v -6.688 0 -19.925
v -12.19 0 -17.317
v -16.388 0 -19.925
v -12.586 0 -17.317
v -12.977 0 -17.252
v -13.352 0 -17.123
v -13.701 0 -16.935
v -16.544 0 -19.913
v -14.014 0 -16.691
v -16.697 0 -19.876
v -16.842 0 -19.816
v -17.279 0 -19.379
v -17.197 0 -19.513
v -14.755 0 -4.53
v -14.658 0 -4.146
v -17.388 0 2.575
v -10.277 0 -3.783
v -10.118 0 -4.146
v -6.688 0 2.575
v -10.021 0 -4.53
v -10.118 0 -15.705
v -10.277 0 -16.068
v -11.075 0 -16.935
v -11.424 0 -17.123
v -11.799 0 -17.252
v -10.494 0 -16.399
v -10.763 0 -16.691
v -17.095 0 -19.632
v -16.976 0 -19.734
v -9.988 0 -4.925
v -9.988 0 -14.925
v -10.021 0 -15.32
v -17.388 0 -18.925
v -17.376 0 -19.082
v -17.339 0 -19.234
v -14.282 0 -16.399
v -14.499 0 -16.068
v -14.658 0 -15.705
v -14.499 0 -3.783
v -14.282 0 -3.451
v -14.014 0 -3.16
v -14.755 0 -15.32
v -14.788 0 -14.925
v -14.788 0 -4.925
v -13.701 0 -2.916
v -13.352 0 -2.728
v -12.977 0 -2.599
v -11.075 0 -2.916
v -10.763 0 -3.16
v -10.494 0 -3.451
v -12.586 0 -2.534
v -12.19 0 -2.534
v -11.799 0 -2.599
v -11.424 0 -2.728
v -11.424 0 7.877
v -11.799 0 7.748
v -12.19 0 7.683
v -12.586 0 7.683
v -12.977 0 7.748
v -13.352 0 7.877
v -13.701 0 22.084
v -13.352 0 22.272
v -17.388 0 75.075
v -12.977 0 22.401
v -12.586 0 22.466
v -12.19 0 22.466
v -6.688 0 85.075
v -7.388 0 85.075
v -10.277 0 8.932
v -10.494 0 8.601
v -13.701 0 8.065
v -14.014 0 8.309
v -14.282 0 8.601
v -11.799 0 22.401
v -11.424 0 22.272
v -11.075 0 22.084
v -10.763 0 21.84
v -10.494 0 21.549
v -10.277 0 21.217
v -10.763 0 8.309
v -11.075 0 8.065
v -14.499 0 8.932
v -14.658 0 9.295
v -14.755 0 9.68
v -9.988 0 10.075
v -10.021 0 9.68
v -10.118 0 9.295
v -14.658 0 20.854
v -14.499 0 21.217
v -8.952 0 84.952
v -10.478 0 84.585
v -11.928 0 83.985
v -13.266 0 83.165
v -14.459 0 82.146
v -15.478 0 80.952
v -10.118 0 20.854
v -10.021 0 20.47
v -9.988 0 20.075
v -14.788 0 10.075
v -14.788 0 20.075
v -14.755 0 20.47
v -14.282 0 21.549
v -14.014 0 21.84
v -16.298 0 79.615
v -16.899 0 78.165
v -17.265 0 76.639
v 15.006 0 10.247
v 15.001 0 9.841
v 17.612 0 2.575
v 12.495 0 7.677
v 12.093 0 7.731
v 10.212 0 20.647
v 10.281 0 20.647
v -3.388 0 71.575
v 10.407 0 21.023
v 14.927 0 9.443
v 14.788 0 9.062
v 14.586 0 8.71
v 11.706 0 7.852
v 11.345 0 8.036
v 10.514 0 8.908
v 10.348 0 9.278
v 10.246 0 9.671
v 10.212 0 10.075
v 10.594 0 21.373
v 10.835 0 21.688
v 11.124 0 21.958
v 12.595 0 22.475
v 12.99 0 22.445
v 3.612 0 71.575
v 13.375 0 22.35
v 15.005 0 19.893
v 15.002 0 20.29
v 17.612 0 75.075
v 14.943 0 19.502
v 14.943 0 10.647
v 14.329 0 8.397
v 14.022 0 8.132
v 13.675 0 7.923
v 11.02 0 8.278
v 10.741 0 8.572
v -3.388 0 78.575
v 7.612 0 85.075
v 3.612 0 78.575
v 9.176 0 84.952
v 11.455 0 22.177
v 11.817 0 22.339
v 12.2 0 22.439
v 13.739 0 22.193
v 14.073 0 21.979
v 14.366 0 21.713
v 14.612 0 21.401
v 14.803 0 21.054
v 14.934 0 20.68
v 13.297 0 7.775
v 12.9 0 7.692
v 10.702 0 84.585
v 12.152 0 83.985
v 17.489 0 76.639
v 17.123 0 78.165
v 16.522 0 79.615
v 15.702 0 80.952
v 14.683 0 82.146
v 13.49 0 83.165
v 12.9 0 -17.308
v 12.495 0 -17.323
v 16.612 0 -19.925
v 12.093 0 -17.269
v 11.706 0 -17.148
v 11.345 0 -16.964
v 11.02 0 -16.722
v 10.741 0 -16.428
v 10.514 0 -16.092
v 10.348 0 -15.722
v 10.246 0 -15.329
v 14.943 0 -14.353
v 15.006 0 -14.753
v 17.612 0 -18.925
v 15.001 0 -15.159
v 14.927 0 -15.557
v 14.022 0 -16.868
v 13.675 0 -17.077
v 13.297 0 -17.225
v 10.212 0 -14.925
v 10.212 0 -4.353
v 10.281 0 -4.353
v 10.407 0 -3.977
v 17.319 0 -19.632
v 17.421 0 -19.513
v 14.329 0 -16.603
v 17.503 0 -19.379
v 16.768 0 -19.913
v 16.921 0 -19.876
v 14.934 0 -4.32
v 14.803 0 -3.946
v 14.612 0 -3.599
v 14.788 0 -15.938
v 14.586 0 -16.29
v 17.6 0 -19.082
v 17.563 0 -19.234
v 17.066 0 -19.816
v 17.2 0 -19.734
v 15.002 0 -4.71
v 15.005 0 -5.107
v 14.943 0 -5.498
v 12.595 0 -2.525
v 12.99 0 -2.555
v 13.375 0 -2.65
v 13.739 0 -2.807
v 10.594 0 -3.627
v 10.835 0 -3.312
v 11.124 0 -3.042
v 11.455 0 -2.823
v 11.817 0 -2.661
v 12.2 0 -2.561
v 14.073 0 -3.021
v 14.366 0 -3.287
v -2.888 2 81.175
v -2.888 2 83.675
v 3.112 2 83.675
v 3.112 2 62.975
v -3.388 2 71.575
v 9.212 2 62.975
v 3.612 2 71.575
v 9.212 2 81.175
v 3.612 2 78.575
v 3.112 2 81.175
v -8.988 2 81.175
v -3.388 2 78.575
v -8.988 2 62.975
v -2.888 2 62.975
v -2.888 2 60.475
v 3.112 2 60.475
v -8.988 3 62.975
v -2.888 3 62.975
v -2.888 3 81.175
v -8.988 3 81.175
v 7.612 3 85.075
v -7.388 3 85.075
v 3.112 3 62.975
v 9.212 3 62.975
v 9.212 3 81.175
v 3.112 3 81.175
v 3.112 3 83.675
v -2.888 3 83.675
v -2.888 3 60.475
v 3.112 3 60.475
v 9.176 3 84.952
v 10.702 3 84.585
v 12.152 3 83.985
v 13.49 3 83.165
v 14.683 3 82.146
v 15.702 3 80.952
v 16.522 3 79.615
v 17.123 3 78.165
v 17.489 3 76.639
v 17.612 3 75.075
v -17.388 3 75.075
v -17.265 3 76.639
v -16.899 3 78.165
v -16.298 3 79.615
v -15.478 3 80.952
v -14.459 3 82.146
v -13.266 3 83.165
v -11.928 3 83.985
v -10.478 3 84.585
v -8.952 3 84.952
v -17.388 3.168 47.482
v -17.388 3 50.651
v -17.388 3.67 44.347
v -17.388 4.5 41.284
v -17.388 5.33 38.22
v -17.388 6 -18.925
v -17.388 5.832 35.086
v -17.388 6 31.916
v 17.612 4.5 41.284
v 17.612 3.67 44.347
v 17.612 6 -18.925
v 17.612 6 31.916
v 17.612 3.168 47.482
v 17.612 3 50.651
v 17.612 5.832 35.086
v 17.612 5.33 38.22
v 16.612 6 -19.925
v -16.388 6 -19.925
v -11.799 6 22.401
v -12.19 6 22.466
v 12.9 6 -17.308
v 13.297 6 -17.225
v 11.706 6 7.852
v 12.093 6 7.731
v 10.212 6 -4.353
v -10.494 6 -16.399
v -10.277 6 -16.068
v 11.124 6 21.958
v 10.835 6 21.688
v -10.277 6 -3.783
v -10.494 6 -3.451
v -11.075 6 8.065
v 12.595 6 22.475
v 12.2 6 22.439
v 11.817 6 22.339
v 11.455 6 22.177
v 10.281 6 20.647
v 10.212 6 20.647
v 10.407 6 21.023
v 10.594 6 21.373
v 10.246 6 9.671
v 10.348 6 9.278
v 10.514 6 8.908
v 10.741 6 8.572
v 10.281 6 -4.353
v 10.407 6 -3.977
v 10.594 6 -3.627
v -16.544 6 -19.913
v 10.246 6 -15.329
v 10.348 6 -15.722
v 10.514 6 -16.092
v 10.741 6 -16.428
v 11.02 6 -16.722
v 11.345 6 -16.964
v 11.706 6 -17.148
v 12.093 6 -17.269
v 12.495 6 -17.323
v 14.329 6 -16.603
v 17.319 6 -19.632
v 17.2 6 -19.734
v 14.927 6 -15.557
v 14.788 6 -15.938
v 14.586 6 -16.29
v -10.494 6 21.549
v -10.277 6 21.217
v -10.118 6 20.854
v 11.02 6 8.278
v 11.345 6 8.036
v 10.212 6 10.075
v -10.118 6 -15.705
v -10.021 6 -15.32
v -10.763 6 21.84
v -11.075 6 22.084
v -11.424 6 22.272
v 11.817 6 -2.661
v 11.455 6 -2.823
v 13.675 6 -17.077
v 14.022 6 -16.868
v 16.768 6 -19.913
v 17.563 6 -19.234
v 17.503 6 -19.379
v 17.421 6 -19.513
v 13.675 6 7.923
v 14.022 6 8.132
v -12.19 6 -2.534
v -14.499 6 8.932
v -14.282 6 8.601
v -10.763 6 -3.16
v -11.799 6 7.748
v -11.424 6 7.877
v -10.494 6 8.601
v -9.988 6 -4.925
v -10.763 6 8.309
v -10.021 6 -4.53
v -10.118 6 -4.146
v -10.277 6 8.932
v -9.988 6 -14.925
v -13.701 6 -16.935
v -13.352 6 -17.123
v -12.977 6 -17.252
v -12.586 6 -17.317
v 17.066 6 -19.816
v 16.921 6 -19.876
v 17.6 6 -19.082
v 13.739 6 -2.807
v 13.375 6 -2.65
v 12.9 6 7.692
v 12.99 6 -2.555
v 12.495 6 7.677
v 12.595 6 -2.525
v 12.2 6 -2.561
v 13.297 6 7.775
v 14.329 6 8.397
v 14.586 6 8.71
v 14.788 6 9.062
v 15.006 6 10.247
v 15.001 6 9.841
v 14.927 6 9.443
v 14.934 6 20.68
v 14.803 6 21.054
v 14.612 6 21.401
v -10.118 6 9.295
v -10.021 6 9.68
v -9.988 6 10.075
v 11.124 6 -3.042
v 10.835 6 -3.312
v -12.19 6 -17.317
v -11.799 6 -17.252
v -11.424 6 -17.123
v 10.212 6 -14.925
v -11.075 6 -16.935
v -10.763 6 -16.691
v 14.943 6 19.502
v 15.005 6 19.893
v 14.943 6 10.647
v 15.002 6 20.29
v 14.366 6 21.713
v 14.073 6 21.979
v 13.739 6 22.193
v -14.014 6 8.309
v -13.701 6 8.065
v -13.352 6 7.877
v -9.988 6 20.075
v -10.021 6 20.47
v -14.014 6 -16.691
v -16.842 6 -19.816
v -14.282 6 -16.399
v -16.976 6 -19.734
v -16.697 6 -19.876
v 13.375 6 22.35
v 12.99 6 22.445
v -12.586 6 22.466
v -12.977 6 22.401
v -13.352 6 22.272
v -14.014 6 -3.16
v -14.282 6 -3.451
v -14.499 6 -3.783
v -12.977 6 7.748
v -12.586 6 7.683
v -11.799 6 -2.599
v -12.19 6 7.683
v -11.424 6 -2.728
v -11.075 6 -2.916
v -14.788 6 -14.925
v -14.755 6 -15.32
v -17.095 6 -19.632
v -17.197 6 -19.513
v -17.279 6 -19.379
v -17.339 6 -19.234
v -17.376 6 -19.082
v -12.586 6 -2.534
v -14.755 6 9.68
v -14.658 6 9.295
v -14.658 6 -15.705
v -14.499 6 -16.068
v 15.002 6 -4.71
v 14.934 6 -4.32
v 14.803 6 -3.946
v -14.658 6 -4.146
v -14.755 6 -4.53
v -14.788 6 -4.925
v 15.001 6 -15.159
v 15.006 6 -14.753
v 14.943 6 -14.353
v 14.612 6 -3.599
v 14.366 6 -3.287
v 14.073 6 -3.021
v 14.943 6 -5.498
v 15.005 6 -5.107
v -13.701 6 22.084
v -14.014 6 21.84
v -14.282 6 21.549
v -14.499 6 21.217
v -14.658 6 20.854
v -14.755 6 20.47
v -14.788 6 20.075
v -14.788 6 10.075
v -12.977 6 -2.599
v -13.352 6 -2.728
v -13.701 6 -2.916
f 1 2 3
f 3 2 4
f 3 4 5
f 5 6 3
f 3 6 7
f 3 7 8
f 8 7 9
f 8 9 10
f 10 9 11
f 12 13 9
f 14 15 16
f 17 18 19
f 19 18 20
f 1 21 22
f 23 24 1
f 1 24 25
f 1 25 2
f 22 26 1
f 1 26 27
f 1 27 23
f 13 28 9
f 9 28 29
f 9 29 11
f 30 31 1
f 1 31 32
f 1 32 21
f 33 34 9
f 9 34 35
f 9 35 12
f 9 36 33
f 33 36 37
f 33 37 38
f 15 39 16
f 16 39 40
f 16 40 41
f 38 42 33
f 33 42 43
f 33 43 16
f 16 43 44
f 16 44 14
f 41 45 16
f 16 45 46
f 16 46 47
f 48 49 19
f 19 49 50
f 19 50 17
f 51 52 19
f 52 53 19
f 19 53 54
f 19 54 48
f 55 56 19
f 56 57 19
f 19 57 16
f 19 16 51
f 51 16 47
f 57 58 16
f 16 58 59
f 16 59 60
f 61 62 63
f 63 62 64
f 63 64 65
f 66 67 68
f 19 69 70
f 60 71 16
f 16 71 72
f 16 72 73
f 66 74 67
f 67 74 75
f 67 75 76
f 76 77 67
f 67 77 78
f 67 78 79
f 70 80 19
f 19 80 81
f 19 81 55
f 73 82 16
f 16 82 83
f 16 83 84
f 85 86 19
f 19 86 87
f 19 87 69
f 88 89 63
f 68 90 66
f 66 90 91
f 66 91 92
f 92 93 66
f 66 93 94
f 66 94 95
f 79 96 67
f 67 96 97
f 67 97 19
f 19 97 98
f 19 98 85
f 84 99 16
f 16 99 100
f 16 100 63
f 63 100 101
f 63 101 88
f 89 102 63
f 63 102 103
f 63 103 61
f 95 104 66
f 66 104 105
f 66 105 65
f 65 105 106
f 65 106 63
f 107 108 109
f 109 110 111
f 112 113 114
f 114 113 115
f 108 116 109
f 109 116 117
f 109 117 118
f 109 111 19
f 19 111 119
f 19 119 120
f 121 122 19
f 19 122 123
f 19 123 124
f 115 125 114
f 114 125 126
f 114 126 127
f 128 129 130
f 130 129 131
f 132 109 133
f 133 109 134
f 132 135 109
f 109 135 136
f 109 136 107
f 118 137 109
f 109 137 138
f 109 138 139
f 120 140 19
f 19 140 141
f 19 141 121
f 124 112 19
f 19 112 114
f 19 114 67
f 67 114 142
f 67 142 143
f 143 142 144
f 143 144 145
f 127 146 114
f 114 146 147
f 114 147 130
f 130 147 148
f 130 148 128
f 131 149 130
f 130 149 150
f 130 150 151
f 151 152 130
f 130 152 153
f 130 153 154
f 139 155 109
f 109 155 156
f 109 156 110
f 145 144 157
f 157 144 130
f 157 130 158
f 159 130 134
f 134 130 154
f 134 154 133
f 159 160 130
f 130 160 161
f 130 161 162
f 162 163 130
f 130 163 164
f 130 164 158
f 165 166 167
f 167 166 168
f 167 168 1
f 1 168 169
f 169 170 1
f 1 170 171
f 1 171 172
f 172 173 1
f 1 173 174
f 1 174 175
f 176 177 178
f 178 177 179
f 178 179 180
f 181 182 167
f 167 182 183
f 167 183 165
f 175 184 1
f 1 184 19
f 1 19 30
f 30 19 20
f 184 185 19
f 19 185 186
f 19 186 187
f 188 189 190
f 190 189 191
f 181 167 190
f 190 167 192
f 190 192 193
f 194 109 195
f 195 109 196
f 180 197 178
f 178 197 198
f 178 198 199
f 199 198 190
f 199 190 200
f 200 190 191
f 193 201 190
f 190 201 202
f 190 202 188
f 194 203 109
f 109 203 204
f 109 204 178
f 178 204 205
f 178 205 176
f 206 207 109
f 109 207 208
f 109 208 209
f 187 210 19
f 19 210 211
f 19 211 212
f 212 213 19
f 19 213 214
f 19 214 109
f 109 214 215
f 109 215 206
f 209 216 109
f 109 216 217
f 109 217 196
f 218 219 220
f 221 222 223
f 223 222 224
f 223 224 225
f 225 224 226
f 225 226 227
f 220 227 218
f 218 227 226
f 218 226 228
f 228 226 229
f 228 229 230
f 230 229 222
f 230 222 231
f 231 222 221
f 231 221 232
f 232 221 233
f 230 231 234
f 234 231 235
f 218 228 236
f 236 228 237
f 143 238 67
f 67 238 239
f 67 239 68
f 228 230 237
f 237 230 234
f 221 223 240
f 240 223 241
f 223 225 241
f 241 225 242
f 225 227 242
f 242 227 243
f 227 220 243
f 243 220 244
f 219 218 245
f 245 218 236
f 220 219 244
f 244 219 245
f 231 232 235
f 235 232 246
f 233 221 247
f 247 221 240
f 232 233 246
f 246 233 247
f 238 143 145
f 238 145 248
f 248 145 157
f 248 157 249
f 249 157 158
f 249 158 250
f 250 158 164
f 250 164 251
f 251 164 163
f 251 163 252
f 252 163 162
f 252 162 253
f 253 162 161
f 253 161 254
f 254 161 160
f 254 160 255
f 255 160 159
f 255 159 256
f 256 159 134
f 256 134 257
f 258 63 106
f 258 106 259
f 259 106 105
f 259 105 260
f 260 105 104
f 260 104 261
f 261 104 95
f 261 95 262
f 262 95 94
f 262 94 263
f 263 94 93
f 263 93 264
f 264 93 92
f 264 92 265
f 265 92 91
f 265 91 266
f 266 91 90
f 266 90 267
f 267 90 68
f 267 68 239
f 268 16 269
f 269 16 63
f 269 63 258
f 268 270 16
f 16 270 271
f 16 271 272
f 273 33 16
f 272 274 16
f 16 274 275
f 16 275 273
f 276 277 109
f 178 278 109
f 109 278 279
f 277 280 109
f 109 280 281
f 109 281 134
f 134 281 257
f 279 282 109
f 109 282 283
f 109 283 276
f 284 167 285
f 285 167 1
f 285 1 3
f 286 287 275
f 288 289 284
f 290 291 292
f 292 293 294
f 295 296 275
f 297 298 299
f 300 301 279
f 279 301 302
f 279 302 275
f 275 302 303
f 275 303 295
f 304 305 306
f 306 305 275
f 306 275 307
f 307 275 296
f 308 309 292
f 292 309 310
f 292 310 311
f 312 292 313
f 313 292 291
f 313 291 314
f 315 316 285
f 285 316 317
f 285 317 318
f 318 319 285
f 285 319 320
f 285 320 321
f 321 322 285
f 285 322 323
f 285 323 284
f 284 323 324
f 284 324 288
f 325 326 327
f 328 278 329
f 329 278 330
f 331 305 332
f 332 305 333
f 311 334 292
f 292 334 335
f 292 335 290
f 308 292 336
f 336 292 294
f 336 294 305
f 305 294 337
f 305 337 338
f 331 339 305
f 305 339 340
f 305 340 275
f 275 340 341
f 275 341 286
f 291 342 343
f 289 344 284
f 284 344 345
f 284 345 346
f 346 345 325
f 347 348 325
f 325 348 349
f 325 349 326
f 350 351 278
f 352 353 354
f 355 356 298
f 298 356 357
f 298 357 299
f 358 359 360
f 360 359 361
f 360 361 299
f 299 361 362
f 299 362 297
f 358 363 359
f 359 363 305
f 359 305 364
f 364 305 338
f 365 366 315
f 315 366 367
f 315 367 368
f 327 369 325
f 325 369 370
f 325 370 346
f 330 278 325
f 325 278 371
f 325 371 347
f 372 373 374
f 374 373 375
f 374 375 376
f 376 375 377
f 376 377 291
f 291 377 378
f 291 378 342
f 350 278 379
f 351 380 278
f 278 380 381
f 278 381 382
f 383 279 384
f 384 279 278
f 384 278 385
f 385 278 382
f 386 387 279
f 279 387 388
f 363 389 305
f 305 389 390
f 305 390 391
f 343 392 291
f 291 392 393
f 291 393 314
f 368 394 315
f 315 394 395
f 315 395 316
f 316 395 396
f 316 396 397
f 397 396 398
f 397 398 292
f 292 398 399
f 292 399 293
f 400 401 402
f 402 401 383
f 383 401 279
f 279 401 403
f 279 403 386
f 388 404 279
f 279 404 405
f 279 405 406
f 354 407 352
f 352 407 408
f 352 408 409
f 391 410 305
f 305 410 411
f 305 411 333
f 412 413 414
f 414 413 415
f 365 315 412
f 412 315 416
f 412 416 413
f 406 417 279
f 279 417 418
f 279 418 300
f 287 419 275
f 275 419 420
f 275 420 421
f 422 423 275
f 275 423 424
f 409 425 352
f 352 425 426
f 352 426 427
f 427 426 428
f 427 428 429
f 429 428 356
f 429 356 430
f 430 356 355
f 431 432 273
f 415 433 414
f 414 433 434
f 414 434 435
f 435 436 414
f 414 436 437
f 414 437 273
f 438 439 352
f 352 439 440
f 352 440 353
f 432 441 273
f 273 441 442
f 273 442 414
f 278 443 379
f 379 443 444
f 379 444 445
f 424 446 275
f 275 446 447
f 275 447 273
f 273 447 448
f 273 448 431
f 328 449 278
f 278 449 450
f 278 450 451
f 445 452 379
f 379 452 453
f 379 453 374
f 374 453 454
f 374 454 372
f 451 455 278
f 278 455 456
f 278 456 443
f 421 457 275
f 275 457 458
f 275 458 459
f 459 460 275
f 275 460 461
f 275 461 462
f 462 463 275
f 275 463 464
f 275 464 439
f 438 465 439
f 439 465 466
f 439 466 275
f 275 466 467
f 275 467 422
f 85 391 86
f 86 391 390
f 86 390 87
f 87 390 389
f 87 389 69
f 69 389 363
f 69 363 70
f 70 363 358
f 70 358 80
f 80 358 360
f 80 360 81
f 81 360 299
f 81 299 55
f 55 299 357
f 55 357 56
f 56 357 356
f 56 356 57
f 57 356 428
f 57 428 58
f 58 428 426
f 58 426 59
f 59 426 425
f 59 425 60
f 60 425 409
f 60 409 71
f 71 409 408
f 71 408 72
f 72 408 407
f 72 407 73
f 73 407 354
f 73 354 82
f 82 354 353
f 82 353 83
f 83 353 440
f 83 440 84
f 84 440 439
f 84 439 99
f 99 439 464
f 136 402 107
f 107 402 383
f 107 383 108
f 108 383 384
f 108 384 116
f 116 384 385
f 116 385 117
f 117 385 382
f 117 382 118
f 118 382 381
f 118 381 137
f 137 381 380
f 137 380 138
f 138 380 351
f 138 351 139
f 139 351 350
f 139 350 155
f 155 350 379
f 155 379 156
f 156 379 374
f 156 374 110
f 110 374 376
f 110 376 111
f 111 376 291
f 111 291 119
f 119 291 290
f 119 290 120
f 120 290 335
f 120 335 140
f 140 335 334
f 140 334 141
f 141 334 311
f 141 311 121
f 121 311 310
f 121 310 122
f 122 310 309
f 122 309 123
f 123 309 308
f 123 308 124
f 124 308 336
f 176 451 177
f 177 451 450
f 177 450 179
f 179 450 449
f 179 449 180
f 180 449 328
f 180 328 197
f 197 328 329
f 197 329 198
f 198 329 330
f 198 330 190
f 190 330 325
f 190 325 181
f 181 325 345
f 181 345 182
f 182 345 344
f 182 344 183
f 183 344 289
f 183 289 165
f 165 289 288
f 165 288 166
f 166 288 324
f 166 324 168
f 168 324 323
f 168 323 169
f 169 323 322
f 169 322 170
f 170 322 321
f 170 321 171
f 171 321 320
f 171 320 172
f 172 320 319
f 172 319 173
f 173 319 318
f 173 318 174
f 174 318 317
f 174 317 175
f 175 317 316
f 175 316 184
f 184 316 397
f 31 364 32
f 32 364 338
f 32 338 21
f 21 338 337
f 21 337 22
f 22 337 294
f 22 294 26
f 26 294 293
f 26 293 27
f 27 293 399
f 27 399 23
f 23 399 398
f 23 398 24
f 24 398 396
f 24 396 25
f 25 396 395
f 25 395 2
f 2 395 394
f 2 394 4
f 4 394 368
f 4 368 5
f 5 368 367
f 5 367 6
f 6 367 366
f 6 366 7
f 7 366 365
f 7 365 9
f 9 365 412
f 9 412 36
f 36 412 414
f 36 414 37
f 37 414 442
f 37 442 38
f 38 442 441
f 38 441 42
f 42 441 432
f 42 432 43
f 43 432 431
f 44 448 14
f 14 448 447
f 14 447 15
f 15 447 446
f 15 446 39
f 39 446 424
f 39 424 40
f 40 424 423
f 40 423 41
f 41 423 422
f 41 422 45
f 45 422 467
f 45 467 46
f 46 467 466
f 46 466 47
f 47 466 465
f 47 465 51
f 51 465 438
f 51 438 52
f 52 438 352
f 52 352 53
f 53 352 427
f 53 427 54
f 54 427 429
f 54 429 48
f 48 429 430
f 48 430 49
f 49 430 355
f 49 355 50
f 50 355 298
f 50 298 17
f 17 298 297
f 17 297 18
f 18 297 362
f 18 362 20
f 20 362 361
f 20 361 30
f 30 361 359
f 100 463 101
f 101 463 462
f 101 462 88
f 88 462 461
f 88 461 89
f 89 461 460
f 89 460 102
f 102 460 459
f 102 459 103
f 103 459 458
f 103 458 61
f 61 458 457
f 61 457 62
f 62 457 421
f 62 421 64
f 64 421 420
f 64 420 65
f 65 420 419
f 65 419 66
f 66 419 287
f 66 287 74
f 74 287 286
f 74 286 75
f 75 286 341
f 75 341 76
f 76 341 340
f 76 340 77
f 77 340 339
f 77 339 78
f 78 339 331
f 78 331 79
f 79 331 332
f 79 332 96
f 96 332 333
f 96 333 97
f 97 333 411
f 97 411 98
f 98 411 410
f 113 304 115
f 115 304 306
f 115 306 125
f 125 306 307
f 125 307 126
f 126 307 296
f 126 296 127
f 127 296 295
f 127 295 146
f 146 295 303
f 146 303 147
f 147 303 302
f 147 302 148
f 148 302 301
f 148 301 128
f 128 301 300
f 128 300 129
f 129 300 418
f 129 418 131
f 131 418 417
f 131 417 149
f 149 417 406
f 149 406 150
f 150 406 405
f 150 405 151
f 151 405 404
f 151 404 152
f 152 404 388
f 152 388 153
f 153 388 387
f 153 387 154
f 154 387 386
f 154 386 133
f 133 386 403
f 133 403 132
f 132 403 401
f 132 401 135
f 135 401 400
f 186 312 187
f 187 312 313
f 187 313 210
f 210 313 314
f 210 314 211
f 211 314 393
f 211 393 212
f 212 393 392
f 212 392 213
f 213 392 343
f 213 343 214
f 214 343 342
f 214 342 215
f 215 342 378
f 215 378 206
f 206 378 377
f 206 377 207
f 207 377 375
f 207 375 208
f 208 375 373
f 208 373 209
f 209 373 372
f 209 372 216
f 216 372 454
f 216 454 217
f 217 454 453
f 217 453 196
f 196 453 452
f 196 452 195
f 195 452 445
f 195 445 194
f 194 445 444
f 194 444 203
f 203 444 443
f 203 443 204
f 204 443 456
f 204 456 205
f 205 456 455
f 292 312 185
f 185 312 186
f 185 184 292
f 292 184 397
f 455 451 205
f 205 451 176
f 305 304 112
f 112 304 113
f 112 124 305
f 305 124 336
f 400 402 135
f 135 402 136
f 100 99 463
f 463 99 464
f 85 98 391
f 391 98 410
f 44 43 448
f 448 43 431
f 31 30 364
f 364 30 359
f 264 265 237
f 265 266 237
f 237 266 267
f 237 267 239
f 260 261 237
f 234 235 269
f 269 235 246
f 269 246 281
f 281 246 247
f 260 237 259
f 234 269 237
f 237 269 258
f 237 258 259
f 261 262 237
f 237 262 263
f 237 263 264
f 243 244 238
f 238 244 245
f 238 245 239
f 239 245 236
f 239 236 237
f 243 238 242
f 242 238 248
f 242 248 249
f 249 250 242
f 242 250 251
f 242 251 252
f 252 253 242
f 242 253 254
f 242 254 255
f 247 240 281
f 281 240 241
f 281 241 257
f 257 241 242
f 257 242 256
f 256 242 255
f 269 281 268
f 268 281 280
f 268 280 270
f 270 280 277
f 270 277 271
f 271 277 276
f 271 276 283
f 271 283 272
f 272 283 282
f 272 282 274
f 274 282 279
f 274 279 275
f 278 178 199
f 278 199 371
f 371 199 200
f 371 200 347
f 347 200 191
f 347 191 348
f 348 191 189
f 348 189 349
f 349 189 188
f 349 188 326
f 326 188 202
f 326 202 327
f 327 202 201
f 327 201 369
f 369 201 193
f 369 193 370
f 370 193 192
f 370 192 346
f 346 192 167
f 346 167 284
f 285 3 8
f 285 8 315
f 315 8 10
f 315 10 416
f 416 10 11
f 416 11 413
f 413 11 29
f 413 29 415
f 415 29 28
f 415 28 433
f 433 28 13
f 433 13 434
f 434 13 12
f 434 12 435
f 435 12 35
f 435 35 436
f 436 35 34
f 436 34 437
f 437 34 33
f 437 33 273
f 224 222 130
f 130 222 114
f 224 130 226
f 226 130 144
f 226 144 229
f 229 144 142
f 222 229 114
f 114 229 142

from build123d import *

# Parameters (mm, degrees)
SKETCH1_W            = 35
SKETCH1_H            = 105
BOSS_EXTRUDE1_DEPTH  = 6
M4_CLEARANCE_HOLE1_D = 4.8
LPATTERN2_COUNT      = 2
LPATTERN2_PITCH      = 10
SKETCH5_W            = 4.8
SKETCH5_H            = 10
SKETCH5_W_2          = 4.730666207
SKETCH5_H_2          = 10.572708501
CUT_EXTRUDE1_DEPTH   = 88.085432636
SKETCH6_W            = 18.2
SKETCH6_H            = 18.2
CUT_EXTRUDE2_DEPTH   = 4
SKETCH7_W            = 7
SKETCH7_H            = 7
CUT_EXTRUDE3_DEPTH   = 87.970527062
SKETCH8_W            = 6
SKETCH8_H            = 23.2
CUT_EXTRUDE4_DEPTH   = 4
FILLET1_R            = 10
CUT_EXTRUDE5_START   = -6
SKETCH9_W            = 37.049954943
SKETCH9_H            = 47.5
CUT_EXTRUDE5_DEPTH   = 3
FILLET2_R            = 30
FILLET3_R            = 30
FILLET4_R            = 1
SKETCH14_W           = 7
SKETCH14_H           = 2
BOSS_EXTRUDE2_DEPTH  = 7
SKETCH16_W           = 7
SKETCH16_H           = 7
CUT_EXTRUDE6_DEPTH   = 10


with BuildPart() as part:
    # Sketch1 → Boss-Extrude1 (new body)
    with BuildSketch(Plane(origin=(0, 0, 0), x_dir=(1, 0, 0), z_dir=(0, 1, 0))):
        with Locations((0.111940299, -32.574626866)):
            Rectangle(SKETCH1_W, SKETCH1_H)
    extrude(amount=BOSS_EXTRUDE1_DEPTH)

    # M4 Clearance Hole1 (through all)
    with Locations(Plane(origin=(0, 6, 0), x_dir=(1, 0, 0), z_dir=(0, 1, 0))):
        with Locations((-12.388059701, 14.925373134), (12.611940299, 14.925373134), (12.611940299, -10.074626866), (-12.388059701, -10.074626866)):
            m4_clearance_hole1 = Hole(M4_CLEARANCE_HOLE1_D / 2)

    # LPattern2: M4 Clearance Hole1 ×2
    with Locations(*[(0, 0, i * LPATTERN2_PITCH) for i in range(1, LPATTERN2_COUNT)]):
        add(m4_clearance_hole1, mode=Mode.SUBTRACT)

    # Sketch5 → Cut-Extrude1 (cut, through all)
    with BuildSketch(Plane(origin=(0, 6, 0), x_dir=(1, 0, 0), z_dir=(0, 1, 0))):
        with Locations((-12.388059701, 9.925373134)):
            Rectangle(SKETCH5_W, SKETCH5_H)
        with Locations((-12.388059701, -15.074626866)):
            Rectangle(SKETCH5_W, SKETCH5_H)
        with Locations((12.577273403, 9.639018884)):
            Rectangle(SKETCH5_W_2, SKETCH5_H_2)
        with Locations((12.577273403, -15.360981116)):
            Rectangle(SKETCH5_W_2, SKETCH5_H_2)
    extrude(amount=-CUT_EXTRUDE1_DEPTH, mode=Mode.SUBTRACT)

    # Sketch6 → Cut-Extrude2 (cut)
    with BuildSketch(Plane(origin=(0, 6, 0), x_dir=(1, 0, 0), z_dir=(0, 1, 0))):
        with Locations((0.111940299, -72.074626866)):
            Rectangle(SKETCH6_W, SKETCH6_H)
    extrude(amount=-CUT_EXTRUDE2_DEPTH, mode=Mode.SUBTRACT)

    # Sketch7 → Cut-Extrude3 (cut, through all)
    with BuildSketch(Plane(origin=(0, 2, 0), x_dir=(1, 0, 0), z_dir=(0, 1, 0))):
        with Locations((0.111940299, -72.074626866)):
            Rectangle(SKETCH7_W, SKETCH7_H)
    extrude(amount=-CUT_EXTRUDE3_DEPTH, mode=Mode.SUBTRACT)

    # Sketch8 → Cut-Extrude4 (cut)
    with BuildSketch(Plane(origin=(0, 6, 0), x_dir=(1, 0, 0), z_dir=(0, 1, 0))):
        with Locations((0.111940299, -72.074626866)):
            Rectangle(SKETCH8_W, SKETCH8_H)
    extrude(amount=-CUT_EXTRUDE4_DEPTH, mode=Mode.SUBTRACT)

    # Fillet1
    fillet1_edges = [part.edges().sort_by_distance(p)[0] for p in [
        (17.611940299, 3, 85.074626866),
        (-17.388059701, 3, 85.074626866),
    ]]
    fillet(fillet1_edges, radius=FILLET1_R)

    # Sketch9 → Cut-Extrude5 (cut)
    with BuildSketch(Plane.XZ.offset(CUT_EXTRUDE5_START)):
        with Locations((1.136917771, 61.324626866)):
            Rectangle(SKETCH9_W, SKETCH9_H)
    extrude(amount=CUT_EXTRUDE5_DEPTH, mode=Mode.SUBTRACT)

    # Fillet2
    # the kernel refuses this fillet: 30 mm, written as the material it adds along each edge
    with BuildSketch(Plane(origin=(-17.388059701, 3, 37.574626866), x_dir=(0, 1, 0), z_dir=(1, 0, 0))) as fillet2_piece_1:
        with BuildLine():
            CenterArc((30, 13.076696831), FILLET2_R, 180, 25.841932763)
            Line((0, 13.076696831), (-0.6, 13.076696831))
            Line((-0.6, 13.076696831), (-0.6, 0))
            Line((-0.6, 0), (0, -0.6))
            ThreePointArc((0, -0.6), (1.5, -0.6), (2.46, -0.261533937))
            Line((2.46, -0.261533937), (3, 0))
        make_face()
    extrude(amount=35)

    # Fillet3
    fillet3_edges = [part.edges().sort_by_distance(p)[0] for p in [
        (0.111940299, 6, 37.574626866),
    ]]
    fillet(fillet3_edges, radius=FILLET3_R)

    # Fillet4
    fillet4_edges = [part.edges().sort_by_distance(p)[0] for p in [
        (-17.388059701, 3, -19.925373134),
        (17.611940299, 3, -19.925373134),
    ]]
    fillet(fillet4_edges, radius=FILLET4_R)

    # Sketch14 → Boss-Extrude2 (add)
    with BuildSketch(Plane(origin=(-3.388059701, 0, 0), x_dir=(0, 0, -1), z_dir=(1, 0, 0))):
        with Locations((-72.074626866, 1)):
            Rectangle(SKETCH14_W, SKETCH14_H)
    extrude(amount=BOSS_EXTRUDE2_DEPTH)

    # Sketch16 → Cut-Extrude6 (cut)
    with BuildSketch(Plane(origin=(0, 3, 0), x_dir=(1, 0, 0), z_dir=(0, 1, 0))):
        with Locations((0.111940299, -75.074626866)):
            Rectangle(SKETCH16_W, SKETCH16_H)
    extrude(amount=-CUT_EXTRUDE6_DEPTH, mode=Mode.SUBTRACT)


solid = part.part
